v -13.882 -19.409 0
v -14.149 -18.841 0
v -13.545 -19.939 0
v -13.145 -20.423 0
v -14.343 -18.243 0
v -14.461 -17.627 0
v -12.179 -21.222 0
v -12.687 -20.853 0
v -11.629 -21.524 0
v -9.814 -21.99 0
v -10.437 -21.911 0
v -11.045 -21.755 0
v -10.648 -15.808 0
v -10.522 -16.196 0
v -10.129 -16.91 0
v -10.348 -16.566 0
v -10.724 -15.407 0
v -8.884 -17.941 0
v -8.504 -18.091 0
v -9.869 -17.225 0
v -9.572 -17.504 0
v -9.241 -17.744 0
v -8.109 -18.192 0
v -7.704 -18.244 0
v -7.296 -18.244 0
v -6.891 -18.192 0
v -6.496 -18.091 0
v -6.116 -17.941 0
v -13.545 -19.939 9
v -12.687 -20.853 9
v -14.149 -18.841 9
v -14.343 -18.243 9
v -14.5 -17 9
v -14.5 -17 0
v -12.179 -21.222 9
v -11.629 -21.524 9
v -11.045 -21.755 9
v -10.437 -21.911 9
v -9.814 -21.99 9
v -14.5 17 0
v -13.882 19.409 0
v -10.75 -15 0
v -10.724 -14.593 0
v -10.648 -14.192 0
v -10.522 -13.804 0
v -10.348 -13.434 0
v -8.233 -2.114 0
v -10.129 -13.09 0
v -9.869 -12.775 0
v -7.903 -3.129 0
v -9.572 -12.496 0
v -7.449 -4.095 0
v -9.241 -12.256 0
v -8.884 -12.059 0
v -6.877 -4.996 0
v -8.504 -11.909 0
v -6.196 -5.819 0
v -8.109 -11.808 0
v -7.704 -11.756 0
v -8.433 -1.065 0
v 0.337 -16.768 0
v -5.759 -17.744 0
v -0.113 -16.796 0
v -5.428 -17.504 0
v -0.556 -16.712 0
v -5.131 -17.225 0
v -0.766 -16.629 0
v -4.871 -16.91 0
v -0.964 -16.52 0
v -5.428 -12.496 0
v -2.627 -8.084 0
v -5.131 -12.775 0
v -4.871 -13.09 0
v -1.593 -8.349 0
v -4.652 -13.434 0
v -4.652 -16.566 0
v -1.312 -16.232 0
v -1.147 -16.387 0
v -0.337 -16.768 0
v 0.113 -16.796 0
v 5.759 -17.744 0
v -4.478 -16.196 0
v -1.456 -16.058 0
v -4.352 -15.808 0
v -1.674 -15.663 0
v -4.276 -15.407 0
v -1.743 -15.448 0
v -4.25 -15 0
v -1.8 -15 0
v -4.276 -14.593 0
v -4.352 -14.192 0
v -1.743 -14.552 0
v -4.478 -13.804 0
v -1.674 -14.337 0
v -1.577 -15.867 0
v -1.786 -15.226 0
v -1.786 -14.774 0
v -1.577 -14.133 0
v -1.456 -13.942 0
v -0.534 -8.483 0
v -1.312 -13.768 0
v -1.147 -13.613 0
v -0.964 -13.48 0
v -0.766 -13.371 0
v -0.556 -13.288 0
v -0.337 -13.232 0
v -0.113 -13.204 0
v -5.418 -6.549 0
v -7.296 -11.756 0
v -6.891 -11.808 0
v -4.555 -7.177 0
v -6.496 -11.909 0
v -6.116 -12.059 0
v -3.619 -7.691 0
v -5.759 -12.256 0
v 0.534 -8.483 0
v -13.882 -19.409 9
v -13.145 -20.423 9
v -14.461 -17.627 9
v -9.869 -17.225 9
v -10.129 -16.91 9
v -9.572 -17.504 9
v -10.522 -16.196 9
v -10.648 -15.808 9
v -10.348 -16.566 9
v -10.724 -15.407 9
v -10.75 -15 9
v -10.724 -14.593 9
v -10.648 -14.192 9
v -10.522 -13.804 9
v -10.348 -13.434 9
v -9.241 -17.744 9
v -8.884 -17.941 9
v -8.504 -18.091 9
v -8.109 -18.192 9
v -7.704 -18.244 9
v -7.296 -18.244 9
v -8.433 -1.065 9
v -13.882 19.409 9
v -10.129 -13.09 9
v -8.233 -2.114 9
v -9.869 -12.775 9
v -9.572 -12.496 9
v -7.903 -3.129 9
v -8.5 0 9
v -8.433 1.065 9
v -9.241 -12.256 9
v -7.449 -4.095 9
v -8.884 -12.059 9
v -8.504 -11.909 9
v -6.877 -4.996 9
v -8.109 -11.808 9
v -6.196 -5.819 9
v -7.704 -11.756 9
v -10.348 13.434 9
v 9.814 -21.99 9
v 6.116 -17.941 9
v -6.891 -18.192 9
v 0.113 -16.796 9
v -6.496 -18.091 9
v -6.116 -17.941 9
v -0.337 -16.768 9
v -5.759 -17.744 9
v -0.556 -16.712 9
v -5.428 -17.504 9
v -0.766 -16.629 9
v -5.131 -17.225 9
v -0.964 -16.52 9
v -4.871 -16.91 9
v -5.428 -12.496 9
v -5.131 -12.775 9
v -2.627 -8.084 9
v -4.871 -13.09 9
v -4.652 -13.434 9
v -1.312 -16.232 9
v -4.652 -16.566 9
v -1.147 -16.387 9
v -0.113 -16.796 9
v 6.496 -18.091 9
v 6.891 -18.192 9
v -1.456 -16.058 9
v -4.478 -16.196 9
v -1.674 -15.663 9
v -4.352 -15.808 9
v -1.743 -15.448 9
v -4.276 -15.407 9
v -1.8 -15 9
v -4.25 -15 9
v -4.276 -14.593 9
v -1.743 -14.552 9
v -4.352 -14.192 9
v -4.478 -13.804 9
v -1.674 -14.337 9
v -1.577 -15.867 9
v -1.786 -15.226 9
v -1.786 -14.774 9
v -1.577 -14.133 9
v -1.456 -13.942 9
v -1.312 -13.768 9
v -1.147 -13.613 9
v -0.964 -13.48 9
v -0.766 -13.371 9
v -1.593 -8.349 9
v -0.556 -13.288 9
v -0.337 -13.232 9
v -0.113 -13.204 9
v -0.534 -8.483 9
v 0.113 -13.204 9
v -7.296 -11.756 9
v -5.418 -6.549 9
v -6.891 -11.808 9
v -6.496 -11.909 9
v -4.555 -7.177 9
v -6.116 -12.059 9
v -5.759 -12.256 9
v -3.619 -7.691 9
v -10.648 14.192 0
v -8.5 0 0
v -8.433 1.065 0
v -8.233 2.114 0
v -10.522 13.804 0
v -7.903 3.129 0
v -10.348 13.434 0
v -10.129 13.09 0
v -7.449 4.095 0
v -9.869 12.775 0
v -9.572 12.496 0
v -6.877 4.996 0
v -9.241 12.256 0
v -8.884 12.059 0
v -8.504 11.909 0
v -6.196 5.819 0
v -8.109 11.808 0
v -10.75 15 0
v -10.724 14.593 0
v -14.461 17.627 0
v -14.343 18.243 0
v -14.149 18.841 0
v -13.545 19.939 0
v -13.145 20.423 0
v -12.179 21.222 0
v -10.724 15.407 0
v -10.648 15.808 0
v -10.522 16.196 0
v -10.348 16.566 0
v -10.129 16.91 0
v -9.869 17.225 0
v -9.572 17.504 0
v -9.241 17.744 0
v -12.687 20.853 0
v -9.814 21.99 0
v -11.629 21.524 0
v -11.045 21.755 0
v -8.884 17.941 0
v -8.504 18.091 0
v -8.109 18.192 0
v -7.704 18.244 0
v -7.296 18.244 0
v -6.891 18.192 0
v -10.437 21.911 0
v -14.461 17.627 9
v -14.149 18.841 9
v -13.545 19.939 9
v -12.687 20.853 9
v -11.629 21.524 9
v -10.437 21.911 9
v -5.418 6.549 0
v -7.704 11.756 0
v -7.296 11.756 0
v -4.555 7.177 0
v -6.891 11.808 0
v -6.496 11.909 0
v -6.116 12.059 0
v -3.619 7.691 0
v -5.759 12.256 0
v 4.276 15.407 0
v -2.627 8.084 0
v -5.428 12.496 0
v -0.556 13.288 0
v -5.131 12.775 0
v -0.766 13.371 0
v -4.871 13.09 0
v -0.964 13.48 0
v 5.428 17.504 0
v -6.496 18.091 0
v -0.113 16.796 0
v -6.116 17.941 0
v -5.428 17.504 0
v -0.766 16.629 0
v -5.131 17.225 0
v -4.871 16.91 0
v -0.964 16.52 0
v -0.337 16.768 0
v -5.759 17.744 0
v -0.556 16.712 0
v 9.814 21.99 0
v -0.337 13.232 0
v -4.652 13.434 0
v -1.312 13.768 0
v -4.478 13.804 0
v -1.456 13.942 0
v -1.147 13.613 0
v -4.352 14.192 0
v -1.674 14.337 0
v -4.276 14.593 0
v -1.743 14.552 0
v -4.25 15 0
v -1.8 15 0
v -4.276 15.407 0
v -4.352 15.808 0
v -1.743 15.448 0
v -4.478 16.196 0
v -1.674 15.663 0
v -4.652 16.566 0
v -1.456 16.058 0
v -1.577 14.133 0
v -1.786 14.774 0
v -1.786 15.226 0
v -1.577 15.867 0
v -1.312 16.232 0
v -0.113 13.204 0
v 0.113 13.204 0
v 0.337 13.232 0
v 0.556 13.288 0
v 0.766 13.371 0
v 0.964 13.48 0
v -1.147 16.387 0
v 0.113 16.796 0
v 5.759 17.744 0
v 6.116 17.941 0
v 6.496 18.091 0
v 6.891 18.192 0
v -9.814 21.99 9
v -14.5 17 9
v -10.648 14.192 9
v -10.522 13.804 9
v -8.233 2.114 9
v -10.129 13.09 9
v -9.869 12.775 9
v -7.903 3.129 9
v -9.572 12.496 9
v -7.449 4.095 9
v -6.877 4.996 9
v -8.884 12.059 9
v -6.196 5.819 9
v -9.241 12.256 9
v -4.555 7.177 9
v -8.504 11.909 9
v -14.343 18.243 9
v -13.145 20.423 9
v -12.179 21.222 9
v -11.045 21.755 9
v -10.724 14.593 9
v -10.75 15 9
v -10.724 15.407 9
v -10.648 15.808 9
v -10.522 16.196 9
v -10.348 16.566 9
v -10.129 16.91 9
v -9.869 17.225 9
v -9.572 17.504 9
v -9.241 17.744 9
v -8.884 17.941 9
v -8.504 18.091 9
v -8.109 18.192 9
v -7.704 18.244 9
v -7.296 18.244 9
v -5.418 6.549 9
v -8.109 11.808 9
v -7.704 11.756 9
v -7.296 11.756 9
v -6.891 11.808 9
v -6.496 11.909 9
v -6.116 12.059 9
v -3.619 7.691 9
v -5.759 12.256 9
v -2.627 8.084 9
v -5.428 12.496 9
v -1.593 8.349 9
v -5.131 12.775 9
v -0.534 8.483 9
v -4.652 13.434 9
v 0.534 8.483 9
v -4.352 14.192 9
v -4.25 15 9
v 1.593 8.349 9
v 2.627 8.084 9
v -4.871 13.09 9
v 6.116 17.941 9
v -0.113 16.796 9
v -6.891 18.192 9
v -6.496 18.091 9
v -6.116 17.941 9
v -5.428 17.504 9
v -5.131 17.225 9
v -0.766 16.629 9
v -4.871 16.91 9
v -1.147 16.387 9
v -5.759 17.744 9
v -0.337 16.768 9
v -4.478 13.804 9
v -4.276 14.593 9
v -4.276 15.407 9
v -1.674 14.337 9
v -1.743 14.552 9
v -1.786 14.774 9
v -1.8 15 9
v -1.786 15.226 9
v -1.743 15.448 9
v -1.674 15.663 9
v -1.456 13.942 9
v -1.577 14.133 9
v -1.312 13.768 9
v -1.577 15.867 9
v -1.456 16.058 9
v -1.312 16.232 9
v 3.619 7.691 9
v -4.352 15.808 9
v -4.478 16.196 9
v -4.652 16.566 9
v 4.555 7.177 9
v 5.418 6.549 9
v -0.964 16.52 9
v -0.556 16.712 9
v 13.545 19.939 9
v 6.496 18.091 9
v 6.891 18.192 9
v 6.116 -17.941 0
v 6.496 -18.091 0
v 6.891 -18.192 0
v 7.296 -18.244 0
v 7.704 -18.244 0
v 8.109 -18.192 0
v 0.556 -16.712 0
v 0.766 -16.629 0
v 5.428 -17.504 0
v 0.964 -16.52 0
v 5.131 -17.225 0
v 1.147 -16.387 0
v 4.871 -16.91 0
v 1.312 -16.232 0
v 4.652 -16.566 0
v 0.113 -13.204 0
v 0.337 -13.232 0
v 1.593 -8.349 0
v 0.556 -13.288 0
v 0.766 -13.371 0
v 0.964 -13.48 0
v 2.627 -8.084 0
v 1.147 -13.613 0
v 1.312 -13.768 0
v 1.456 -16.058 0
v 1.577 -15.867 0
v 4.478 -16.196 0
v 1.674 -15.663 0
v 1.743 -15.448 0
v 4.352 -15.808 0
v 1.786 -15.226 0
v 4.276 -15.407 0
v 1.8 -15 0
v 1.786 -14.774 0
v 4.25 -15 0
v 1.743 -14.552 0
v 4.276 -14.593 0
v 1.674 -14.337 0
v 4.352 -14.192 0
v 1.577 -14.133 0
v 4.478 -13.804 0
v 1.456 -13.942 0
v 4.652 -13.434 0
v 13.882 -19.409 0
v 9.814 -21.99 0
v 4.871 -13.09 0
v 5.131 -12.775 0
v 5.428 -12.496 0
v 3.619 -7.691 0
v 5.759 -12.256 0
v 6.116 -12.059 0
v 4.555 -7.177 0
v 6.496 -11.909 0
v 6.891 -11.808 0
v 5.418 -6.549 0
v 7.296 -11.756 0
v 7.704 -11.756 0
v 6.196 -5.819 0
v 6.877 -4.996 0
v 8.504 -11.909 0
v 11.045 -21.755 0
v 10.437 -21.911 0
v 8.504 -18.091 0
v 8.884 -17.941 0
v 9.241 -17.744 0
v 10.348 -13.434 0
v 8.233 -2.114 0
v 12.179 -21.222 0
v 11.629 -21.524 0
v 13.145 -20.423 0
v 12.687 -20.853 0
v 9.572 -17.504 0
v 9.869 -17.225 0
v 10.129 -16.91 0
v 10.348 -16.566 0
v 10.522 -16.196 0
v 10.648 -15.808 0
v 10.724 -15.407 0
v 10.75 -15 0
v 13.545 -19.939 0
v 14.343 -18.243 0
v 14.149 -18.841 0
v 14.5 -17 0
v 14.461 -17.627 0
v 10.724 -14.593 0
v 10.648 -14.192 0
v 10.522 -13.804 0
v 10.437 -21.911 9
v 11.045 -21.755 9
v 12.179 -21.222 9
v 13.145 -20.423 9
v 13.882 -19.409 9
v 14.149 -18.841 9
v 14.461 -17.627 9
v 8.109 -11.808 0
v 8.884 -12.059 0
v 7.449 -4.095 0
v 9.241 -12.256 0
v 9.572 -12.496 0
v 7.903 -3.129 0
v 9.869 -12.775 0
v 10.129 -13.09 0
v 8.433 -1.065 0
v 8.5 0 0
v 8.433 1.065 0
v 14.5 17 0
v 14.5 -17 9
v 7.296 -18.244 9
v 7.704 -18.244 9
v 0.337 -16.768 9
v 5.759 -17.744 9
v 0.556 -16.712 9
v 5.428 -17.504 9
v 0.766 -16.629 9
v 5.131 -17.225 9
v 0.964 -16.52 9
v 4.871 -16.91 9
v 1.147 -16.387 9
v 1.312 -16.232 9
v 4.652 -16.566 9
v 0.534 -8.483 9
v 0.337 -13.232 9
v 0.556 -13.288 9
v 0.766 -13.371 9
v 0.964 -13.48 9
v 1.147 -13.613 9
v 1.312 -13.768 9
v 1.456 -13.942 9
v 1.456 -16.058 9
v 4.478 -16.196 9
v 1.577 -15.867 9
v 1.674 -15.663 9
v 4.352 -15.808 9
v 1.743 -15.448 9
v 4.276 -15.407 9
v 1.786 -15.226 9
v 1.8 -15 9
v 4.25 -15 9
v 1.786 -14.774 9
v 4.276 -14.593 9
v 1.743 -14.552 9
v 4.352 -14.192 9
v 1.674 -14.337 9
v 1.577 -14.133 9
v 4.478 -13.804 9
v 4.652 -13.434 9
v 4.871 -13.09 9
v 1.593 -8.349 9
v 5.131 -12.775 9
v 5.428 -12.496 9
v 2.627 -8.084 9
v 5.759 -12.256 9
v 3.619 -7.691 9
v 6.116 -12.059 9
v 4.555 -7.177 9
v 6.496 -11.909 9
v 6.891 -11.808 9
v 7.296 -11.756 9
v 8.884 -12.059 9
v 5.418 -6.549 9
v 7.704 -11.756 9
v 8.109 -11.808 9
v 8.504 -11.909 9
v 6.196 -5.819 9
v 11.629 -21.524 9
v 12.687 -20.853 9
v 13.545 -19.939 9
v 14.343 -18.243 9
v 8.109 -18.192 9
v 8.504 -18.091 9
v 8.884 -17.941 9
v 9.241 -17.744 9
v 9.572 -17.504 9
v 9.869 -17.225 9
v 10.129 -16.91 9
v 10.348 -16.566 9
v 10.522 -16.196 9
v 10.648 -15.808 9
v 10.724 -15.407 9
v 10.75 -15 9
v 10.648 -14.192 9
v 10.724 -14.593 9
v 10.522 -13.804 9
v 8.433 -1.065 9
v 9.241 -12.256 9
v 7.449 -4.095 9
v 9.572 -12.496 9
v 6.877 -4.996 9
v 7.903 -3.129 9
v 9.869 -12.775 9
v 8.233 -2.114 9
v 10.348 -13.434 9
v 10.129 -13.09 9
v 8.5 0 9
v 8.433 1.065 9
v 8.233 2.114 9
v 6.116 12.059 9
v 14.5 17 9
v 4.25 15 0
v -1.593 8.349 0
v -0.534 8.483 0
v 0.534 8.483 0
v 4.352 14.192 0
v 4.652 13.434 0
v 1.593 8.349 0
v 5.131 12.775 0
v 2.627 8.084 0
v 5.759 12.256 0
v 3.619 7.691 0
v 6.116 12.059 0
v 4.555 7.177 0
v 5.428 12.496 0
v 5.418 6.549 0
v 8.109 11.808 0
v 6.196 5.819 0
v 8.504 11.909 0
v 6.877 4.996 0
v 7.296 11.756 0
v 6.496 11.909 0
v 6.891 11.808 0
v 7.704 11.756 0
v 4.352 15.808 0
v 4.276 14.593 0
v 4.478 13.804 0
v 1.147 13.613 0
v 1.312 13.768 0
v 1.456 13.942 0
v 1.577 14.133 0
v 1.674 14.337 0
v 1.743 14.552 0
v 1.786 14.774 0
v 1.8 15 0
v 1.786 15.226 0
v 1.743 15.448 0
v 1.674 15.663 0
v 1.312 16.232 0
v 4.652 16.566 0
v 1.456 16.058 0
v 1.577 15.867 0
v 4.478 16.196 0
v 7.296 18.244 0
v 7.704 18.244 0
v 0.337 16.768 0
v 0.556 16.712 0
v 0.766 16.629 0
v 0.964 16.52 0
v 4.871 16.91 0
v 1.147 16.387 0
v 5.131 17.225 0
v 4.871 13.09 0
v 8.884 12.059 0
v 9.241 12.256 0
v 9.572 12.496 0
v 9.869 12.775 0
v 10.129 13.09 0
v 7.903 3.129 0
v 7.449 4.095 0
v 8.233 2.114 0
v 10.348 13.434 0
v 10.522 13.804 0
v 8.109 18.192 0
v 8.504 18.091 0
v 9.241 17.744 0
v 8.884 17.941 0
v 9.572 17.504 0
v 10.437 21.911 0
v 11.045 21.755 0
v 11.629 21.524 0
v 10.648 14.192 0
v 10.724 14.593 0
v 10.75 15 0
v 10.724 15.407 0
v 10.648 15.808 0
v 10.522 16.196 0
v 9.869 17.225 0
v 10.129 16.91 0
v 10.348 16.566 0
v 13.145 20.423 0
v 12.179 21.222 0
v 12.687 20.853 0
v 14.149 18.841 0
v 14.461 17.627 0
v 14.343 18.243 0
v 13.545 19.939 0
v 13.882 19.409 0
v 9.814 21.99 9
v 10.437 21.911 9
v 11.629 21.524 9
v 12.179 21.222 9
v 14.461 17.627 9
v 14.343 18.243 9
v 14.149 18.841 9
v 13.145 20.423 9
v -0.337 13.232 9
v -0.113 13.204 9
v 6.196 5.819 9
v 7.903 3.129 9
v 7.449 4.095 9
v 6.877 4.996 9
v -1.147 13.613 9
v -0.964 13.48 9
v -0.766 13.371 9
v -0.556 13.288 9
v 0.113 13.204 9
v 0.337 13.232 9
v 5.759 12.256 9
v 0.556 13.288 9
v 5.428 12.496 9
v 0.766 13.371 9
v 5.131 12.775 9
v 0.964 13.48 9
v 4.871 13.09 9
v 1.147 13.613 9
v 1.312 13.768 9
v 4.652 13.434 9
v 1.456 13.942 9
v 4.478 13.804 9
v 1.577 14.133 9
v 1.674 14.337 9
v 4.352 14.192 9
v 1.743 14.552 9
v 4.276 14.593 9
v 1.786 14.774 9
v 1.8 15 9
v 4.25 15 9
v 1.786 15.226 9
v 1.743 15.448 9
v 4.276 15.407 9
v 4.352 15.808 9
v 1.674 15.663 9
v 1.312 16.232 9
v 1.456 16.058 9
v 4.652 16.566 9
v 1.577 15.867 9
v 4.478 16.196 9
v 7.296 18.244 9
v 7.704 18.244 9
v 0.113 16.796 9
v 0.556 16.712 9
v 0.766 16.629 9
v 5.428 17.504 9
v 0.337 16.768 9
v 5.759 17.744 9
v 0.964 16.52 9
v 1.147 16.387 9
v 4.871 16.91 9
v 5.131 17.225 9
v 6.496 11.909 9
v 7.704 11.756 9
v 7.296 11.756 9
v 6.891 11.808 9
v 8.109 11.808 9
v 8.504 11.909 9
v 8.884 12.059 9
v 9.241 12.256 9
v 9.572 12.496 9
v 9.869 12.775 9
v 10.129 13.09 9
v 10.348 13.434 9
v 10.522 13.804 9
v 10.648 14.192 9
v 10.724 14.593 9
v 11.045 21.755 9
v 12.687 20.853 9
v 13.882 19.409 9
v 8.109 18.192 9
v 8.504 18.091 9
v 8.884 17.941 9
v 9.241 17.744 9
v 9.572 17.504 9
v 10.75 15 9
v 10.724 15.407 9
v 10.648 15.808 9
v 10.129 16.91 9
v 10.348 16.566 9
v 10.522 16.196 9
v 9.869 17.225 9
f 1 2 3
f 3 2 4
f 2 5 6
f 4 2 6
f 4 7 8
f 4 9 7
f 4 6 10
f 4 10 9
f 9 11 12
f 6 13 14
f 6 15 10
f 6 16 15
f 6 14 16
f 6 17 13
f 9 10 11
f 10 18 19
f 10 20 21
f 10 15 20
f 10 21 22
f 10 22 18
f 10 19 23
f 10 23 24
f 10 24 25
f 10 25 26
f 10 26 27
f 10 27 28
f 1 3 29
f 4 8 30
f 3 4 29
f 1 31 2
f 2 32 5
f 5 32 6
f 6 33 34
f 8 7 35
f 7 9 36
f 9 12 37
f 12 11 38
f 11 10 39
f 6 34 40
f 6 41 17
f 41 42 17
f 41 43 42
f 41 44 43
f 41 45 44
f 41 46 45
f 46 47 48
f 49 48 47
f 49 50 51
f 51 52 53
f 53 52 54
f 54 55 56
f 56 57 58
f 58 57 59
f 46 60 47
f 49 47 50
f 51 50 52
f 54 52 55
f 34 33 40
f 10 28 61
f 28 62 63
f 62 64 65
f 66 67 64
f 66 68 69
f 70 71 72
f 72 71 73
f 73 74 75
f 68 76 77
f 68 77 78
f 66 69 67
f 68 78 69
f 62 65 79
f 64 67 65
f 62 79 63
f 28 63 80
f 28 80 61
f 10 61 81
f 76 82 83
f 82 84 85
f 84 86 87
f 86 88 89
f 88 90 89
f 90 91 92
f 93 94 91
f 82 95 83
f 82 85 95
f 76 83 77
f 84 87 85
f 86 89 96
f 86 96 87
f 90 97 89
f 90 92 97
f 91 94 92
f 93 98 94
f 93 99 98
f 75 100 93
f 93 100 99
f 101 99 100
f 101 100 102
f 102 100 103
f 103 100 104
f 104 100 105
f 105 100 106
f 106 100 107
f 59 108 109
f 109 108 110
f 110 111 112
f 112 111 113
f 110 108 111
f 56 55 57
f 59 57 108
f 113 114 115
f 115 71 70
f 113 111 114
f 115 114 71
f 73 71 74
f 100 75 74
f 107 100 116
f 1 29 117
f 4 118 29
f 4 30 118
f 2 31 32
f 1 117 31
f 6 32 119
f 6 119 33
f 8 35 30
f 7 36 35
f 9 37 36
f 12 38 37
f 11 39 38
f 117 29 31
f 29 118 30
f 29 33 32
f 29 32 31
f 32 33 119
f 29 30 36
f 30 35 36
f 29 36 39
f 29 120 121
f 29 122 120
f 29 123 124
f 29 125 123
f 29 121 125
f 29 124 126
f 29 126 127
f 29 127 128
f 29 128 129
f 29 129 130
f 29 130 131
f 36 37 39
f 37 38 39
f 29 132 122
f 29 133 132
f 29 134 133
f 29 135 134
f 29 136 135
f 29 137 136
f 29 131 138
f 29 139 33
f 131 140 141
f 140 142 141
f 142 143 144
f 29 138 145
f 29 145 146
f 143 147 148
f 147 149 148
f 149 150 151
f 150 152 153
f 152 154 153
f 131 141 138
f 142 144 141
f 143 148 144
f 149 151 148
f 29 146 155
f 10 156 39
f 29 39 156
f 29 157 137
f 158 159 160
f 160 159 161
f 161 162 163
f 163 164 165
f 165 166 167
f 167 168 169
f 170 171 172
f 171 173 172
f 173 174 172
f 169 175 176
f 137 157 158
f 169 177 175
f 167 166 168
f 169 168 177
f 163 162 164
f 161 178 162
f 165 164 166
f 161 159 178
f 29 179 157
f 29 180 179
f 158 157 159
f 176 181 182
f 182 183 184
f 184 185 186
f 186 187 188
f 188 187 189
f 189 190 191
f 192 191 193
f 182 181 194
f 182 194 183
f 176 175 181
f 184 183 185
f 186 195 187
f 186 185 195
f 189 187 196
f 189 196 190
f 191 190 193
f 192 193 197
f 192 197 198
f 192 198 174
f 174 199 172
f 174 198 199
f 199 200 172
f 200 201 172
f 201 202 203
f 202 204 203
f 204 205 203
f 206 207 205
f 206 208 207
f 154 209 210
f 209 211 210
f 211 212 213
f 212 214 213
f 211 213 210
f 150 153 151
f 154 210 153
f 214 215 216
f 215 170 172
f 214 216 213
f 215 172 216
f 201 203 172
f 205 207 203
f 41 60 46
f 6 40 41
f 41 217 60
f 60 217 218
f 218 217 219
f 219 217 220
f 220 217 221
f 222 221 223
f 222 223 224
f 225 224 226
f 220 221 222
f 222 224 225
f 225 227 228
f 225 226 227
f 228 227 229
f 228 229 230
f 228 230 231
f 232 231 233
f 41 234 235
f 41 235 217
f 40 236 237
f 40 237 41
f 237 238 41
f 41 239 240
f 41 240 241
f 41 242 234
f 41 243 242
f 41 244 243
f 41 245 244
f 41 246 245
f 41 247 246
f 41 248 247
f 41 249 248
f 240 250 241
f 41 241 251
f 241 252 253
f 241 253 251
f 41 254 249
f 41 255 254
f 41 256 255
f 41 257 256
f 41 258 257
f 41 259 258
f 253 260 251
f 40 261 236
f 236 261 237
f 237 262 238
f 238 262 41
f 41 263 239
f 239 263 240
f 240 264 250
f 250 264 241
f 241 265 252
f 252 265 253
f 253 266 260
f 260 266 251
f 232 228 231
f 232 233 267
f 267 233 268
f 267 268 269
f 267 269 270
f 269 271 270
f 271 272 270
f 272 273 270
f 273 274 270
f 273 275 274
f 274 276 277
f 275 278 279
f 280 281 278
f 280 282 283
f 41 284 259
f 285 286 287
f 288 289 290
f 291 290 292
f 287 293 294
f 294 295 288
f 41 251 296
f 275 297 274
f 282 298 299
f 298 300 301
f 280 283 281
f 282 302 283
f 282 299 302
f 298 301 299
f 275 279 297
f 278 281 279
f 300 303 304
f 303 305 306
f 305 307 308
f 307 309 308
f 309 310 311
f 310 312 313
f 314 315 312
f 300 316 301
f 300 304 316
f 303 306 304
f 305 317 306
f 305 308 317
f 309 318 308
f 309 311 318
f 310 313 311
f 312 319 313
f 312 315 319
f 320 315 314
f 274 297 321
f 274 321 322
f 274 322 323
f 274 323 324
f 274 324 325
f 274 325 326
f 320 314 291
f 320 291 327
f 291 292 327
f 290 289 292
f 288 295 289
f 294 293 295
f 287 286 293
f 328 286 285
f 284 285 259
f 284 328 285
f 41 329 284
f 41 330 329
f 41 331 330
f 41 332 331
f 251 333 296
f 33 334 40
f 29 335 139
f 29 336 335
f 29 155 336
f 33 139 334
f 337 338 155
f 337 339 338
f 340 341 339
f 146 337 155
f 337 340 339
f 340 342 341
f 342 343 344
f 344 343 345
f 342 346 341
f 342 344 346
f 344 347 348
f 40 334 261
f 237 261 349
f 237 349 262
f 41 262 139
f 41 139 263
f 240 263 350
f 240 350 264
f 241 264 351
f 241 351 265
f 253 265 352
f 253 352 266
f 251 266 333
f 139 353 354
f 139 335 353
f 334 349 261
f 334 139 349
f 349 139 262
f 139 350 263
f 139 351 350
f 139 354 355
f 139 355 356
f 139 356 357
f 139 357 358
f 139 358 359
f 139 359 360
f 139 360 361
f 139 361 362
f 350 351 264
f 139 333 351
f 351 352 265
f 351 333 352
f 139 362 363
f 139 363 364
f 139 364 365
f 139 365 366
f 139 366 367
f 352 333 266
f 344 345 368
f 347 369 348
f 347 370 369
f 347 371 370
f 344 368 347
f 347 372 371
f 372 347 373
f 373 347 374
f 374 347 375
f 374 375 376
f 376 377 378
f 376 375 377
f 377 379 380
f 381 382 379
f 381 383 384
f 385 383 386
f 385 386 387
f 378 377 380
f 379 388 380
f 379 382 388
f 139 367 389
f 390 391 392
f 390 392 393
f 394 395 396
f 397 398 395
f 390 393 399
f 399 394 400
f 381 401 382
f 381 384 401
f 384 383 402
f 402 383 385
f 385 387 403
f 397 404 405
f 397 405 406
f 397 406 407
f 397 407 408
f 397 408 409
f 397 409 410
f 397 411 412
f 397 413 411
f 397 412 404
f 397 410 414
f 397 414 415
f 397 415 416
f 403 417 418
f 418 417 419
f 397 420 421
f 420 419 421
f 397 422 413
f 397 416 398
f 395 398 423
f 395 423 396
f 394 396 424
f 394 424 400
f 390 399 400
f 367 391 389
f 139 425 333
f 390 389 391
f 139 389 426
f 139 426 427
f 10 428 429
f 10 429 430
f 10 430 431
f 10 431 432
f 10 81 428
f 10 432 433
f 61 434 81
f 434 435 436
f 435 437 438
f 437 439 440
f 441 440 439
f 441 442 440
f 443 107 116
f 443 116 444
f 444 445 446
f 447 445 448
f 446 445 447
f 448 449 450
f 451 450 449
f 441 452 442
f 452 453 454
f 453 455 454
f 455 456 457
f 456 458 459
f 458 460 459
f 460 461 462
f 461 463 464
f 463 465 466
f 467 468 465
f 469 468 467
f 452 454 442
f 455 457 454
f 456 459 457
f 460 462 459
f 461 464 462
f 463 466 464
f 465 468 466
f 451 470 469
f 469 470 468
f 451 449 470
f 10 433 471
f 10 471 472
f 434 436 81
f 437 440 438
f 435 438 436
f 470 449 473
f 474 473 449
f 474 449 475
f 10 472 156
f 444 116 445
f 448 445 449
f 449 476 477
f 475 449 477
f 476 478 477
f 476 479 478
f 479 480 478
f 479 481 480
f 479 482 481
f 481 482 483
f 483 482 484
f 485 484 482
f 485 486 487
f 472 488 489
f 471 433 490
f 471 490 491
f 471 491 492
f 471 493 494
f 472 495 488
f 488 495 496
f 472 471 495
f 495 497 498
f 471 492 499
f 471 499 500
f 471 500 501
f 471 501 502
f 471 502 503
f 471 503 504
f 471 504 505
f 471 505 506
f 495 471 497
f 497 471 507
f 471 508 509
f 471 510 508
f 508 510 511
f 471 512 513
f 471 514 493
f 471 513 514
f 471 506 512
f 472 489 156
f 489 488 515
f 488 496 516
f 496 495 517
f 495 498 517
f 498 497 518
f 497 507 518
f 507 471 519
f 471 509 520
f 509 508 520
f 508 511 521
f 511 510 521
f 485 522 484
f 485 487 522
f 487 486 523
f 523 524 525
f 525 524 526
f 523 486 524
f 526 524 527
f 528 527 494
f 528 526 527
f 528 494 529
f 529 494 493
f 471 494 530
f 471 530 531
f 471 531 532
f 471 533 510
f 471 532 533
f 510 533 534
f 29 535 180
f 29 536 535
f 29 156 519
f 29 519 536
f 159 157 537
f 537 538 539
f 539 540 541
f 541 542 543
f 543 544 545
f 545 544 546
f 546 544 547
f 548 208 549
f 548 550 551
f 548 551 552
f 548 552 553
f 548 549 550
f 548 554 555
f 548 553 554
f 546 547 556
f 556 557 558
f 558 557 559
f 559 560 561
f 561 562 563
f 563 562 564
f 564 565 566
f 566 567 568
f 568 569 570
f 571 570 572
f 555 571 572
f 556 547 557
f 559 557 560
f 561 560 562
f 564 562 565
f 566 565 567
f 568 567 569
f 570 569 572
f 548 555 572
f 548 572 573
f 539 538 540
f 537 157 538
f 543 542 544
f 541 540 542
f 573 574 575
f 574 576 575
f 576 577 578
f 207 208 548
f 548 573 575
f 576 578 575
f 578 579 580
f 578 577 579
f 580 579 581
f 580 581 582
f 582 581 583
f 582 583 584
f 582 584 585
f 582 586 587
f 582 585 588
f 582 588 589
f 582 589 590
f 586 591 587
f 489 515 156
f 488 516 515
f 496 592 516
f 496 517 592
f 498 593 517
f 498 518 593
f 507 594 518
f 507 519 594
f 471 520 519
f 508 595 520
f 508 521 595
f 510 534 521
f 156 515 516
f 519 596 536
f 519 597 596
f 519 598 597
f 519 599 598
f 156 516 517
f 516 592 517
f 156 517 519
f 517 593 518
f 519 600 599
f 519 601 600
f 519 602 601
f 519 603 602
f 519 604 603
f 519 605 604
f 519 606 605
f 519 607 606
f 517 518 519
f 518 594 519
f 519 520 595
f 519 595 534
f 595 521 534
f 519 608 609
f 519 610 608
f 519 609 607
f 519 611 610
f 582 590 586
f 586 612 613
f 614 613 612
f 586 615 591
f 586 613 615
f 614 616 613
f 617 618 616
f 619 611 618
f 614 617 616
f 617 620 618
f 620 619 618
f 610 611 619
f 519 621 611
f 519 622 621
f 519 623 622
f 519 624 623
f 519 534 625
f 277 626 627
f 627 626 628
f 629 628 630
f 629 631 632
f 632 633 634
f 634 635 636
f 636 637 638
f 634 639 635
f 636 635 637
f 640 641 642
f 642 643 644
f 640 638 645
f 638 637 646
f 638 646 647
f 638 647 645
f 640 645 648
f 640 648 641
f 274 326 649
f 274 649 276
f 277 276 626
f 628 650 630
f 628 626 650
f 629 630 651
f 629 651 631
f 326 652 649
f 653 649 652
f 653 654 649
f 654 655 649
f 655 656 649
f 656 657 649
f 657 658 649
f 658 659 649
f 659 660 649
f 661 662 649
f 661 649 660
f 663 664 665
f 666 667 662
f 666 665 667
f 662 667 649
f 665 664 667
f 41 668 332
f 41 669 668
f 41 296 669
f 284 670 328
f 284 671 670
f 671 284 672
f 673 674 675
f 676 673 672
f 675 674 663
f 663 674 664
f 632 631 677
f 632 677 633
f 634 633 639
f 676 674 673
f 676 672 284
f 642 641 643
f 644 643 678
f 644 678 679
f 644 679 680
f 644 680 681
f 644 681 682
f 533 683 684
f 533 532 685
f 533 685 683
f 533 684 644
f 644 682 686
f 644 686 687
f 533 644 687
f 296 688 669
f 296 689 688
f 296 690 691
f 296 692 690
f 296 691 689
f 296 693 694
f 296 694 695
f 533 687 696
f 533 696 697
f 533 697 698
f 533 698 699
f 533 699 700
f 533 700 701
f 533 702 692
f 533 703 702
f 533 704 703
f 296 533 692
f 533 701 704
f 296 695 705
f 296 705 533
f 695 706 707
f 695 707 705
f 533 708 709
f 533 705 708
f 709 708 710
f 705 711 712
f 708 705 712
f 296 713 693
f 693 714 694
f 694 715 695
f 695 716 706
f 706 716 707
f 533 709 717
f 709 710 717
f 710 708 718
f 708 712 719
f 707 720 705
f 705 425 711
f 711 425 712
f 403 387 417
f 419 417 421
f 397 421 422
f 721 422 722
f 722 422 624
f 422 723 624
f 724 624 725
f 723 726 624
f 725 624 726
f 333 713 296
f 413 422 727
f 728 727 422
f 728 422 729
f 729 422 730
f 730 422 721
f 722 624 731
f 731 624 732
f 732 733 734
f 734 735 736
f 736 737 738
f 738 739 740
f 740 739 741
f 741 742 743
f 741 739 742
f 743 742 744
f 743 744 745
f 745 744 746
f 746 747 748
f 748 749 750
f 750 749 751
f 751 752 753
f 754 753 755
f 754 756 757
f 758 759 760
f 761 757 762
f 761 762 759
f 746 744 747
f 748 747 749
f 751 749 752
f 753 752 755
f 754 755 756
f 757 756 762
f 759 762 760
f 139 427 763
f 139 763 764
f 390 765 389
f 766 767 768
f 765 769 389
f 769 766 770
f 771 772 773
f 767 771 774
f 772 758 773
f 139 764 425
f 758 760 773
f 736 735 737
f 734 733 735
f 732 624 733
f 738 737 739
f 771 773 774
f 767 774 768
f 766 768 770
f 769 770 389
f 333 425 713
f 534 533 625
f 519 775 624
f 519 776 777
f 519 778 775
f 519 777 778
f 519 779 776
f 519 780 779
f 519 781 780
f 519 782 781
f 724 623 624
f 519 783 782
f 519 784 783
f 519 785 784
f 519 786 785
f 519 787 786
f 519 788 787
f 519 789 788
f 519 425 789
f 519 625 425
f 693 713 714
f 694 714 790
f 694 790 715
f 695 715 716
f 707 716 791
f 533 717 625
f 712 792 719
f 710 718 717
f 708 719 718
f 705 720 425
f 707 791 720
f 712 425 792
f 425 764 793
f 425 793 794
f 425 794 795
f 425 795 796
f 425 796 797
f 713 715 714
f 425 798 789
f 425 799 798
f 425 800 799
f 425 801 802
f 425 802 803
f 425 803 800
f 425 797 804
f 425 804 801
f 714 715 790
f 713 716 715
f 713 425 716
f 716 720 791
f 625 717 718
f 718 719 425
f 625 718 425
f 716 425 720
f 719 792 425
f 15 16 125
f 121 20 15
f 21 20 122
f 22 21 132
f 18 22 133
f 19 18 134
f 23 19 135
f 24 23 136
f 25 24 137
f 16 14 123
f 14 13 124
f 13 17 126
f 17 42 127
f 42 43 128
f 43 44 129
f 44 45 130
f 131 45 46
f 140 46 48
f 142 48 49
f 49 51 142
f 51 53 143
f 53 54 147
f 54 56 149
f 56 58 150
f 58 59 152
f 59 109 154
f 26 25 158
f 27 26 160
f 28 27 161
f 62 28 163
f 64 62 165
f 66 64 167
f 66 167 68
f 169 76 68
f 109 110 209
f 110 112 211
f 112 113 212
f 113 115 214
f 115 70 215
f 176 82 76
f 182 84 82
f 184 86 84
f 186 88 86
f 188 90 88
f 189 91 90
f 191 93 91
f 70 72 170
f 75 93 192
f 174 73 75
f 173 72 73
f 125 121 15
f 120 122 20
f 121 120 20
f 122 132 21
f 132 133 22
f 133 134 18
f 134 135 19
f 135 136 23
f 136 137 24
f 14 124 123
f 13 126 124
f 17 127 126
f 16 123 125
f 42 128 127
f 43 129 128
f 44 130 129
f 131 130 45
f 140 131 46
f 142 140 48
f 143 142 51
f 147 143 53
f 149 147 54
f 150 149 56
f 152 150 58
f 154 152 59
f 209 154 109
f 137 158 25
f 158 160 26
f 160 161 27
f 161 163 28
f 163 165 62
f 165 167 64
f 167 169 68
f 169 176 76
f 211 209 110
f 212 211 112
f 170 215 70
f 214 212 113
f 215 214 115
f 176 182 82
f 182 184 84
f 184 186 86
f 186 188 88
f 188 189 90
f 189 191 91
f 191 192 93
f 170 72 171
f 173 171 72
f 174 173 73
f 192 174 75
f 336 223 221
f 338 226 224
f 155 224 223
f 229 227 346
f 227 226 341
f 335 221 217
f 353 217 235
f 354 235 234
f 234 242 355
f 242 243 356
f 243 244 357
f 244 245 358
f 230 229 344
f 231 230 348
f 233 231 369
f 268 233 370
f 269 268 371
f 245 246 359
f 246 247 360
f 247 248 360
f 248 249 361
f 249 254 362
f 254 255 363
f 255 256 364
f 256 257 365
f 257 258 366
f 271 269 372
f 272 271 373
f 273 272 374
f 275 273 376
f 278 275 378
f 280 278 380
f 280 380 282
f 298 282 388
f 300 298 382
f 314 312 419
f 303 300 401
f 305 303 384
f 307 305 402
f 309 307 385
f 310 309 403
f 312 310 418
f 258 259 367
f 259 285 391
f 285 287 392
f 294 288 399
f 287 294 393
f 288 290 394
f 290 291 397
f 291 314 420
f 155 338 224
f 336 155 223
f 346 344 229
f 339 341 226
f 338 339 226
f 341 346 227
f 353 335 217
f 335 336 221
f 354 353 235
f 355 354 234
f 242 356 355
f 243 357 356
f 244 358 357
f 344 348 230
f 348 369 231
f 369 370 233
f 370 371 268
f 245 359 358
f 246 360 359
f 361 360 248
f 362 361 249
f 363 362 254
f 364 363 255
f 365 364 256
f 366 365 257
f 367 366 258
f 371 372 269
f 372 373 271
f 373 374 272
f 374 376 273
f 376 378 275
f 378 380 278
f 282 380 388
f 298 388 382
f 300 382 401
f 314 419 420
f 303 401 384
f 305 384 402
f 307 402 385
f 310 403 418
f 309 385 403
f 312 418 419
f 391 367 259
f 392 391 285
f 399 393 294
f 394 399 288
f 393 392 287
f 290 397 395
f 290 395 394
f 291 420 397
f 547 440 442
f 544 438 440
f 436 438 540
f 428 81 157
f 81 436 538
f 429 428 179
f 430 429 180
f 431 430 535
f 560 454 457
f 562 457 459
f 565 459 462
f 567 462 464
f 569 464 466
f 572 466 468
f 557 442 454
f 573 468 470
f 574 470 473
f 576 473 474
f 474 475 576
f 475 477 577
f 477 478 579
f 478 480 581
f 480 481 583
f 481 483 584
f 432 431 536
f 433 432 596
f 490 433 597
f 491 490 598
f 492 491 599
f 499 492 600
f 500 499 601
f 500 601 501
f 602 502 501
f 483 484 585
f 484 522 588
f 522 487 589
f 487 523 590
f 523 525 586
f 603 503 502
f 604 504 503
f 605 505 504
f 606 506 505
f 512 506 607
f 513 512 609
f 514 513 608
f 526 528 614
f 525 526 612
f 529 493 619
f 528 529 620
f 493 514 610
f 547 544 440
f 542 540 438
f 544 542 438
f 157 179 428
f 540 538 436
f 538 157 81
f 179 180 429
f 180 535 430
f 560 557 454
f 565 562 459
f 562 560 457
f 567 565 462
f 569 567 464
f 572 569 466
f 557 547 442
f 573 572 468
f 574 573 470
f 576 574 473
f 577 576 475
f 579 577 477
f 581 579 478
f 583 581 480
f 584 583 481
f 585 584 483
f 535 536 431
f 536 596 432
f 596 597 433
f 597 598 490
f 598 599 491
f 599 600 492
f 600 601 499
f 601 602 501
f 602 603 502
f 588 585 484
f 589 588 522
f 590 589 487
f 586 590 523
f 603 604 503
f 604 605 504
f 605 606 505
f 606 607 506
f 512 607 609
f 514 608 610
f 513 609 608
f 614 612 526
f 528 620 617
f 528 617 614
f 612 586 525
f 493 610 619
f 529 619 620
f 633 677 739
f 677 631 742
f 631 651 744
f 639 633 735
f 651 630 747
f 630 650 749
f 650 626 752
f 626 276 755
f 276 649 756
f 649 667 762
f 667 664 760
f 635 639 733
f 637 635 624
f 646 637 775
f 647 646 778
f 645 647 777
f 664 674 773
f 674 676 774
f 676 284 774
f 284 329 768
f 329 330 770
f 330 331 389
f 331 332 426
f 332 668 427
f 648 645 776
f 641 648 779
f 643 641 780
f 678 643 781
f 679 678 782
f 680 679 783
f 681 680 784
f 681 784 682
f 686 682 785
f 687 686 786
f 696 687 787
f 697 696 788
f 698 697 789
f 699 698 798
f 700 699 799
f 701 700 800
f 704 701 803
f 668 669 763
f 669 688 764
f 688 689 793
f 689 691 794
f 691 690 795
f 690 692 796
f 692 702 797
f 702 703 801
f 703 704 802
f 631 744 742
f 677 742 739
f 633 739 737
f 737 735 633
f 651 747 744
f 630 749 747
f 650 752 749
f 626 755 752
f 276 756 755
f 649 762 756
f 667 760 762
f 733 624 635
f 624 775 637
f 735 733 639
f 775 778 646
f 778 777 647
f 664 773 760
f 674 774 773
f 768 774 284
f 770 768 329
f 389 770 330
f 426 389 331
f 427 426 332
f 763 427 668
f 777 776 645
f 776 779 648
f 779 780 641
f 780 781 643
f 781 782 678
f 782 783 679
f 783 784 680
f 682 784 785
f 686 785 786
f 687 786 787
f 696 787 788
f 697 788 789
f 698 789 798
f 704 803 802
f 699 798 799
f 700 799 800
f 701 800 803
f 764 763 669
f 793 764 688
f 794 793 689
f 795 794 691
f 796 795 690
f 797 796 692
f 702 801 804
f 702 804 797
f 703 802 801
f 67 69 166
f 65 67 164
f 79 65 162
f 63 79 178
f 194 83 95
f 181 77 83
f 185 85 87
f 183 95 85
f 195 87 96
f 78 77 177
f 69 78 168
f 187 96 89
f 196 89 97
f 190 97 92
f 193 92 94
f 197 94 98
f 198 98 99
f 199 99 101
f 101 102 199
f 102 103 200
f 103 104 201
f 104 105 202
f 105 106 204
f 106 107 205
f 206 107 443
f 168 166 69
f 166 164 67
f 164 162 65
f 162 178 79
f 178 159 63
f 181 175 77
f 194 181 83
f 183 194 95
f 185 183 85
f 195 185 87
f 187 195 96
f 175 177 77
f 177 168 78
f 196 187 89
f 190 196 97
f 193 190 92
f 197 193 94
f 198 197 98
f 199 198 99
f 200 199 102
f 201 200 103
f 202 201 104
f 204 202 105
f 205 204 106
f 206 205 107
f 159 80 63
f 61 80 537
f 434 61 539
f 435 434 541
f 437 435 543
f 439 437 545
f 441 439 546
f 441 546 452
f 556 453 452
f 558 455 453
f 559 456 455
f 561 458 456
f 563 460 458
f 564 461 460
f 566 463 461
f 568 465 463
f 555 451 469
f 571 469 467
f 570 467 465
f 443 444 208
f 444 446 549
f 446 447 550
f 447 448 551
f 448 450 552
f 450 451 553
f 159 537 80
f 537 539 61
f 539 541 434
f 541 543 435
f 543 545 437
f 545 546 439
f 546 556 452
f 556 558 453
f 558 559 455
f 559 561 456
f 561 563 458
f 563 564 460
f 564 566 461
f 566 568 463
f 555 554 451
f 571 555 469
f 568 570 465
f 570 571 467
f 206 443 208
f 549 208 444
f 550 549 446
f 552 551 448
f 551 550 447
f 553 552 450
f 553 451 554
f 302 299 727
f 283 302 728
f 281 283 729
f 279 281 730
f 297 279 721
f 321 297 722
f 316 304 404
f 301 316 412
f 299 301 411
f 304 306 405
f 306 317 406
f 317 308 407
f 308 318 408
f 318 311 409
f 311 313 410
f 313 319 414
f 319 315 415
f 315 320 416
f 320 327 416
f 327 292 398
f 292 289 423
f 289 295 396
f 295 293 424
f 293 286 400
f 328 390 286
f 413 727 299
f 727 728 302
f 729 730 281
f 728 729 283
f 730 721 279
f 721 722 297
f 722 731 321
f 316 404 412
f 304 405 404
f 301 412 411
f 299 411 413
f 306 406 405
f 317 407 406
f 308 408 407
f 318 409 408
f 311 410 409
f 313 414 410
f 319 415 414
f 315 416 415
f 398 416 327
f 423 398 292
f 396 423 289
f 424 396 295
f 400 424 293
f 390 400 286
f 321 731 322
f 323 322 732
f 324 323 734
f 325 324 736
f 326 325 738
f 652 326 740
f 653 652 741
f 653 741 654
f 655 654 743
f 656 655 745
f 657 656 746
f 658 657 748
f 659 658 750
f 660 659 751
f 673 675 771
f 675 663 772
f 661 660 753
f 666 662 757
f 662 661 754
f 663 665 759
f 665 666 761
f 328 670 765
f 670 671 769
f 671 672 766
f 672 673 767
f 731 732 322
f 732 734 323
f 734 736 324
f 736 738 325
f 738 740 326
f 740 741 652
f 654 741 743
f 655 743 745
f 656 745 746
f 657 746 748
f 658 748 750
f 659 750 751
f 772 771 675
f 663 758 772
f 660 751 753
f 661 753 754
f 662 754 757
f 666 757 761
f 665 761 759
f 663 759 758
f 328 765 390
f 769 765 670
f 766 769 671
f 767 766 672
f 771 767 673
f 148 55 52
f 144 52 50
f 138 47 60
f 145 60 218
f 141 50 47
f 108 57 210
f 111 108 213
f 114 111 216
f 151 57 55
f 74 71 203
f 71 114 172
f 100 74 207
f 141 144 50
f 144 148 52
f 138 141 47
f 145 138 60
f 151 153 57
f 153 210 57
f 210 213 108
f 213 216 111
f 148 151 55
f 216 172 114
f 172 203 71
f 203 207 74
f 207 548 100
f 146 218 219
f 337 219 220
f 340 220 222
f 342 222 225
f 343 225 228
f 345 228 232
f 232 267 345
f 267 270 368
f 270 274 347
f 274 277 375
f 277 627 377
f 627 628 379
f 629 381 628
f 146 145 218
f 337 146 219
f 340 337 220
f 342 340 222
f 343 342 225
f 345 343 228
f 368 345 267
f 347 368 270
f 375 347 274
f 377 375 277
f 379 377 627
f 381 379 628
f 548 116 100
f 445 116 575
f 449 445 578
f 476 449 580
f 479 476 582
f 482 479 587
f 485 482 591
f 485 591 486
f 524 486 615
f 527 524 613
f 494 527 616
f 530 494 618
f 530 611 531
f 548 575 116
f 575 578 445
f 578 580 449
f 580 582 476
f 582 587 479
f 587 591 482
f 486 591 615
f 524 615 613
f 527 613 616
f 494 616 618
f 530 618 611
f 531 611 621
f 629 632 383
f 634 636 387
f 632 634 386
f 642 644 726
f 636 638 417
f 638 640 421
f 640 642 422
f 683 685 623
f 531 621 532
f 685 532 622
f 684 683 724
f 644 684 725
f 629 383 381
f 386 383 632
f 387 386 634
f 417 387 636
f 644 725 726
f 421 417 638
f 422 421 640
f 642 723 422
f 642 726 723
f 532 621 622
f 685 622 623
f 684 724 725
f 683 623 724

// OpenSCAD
$fn = 50;

difference() {
	union() {
		hull() {
			translate(v = [-9.5, 17.0, 0]) {
				cylinder(h = 9, r = 5);
			}
			translate(v = [9.5, 17.0, 0]) {
				cylinder(h = 9, r = 5);
			}
			translate(v = [-9.5, -17.0, 0]) {
				cylinder(h = 9, r = 5);
			}
			translate(v = [9.5, -17.0, 0]) {
				cylinder(h = 9, r = 5);
			}
		}
	}
	union() {
		translate(v = [-7.5, -15.0, 0]) {
			cylinder(h = 9, r = 3.25);
		}
		translate(v = [-7.5, 15.0, 0]) {
			cylinder(h = 9, r = 3.25);
		}
		translate(v = [7.5, -15.0, 0]) {
			cylinder(h = 9, r = 3.25);
		}
		translate(v = [7.5, 15.0, 0]) {
			cylinder(h = 9, r = 3.25);
		}
		translate(v = [0.0, -15.0, 0]) {
			cylinder(h = 9, r = 1.8);
		}
		translate(v = [0.0, 15.0, 0]) {
			cylinder(h = 9, r = 1.8);
		}
		cylinder(h = 9, r = 8.5);
	}
}
